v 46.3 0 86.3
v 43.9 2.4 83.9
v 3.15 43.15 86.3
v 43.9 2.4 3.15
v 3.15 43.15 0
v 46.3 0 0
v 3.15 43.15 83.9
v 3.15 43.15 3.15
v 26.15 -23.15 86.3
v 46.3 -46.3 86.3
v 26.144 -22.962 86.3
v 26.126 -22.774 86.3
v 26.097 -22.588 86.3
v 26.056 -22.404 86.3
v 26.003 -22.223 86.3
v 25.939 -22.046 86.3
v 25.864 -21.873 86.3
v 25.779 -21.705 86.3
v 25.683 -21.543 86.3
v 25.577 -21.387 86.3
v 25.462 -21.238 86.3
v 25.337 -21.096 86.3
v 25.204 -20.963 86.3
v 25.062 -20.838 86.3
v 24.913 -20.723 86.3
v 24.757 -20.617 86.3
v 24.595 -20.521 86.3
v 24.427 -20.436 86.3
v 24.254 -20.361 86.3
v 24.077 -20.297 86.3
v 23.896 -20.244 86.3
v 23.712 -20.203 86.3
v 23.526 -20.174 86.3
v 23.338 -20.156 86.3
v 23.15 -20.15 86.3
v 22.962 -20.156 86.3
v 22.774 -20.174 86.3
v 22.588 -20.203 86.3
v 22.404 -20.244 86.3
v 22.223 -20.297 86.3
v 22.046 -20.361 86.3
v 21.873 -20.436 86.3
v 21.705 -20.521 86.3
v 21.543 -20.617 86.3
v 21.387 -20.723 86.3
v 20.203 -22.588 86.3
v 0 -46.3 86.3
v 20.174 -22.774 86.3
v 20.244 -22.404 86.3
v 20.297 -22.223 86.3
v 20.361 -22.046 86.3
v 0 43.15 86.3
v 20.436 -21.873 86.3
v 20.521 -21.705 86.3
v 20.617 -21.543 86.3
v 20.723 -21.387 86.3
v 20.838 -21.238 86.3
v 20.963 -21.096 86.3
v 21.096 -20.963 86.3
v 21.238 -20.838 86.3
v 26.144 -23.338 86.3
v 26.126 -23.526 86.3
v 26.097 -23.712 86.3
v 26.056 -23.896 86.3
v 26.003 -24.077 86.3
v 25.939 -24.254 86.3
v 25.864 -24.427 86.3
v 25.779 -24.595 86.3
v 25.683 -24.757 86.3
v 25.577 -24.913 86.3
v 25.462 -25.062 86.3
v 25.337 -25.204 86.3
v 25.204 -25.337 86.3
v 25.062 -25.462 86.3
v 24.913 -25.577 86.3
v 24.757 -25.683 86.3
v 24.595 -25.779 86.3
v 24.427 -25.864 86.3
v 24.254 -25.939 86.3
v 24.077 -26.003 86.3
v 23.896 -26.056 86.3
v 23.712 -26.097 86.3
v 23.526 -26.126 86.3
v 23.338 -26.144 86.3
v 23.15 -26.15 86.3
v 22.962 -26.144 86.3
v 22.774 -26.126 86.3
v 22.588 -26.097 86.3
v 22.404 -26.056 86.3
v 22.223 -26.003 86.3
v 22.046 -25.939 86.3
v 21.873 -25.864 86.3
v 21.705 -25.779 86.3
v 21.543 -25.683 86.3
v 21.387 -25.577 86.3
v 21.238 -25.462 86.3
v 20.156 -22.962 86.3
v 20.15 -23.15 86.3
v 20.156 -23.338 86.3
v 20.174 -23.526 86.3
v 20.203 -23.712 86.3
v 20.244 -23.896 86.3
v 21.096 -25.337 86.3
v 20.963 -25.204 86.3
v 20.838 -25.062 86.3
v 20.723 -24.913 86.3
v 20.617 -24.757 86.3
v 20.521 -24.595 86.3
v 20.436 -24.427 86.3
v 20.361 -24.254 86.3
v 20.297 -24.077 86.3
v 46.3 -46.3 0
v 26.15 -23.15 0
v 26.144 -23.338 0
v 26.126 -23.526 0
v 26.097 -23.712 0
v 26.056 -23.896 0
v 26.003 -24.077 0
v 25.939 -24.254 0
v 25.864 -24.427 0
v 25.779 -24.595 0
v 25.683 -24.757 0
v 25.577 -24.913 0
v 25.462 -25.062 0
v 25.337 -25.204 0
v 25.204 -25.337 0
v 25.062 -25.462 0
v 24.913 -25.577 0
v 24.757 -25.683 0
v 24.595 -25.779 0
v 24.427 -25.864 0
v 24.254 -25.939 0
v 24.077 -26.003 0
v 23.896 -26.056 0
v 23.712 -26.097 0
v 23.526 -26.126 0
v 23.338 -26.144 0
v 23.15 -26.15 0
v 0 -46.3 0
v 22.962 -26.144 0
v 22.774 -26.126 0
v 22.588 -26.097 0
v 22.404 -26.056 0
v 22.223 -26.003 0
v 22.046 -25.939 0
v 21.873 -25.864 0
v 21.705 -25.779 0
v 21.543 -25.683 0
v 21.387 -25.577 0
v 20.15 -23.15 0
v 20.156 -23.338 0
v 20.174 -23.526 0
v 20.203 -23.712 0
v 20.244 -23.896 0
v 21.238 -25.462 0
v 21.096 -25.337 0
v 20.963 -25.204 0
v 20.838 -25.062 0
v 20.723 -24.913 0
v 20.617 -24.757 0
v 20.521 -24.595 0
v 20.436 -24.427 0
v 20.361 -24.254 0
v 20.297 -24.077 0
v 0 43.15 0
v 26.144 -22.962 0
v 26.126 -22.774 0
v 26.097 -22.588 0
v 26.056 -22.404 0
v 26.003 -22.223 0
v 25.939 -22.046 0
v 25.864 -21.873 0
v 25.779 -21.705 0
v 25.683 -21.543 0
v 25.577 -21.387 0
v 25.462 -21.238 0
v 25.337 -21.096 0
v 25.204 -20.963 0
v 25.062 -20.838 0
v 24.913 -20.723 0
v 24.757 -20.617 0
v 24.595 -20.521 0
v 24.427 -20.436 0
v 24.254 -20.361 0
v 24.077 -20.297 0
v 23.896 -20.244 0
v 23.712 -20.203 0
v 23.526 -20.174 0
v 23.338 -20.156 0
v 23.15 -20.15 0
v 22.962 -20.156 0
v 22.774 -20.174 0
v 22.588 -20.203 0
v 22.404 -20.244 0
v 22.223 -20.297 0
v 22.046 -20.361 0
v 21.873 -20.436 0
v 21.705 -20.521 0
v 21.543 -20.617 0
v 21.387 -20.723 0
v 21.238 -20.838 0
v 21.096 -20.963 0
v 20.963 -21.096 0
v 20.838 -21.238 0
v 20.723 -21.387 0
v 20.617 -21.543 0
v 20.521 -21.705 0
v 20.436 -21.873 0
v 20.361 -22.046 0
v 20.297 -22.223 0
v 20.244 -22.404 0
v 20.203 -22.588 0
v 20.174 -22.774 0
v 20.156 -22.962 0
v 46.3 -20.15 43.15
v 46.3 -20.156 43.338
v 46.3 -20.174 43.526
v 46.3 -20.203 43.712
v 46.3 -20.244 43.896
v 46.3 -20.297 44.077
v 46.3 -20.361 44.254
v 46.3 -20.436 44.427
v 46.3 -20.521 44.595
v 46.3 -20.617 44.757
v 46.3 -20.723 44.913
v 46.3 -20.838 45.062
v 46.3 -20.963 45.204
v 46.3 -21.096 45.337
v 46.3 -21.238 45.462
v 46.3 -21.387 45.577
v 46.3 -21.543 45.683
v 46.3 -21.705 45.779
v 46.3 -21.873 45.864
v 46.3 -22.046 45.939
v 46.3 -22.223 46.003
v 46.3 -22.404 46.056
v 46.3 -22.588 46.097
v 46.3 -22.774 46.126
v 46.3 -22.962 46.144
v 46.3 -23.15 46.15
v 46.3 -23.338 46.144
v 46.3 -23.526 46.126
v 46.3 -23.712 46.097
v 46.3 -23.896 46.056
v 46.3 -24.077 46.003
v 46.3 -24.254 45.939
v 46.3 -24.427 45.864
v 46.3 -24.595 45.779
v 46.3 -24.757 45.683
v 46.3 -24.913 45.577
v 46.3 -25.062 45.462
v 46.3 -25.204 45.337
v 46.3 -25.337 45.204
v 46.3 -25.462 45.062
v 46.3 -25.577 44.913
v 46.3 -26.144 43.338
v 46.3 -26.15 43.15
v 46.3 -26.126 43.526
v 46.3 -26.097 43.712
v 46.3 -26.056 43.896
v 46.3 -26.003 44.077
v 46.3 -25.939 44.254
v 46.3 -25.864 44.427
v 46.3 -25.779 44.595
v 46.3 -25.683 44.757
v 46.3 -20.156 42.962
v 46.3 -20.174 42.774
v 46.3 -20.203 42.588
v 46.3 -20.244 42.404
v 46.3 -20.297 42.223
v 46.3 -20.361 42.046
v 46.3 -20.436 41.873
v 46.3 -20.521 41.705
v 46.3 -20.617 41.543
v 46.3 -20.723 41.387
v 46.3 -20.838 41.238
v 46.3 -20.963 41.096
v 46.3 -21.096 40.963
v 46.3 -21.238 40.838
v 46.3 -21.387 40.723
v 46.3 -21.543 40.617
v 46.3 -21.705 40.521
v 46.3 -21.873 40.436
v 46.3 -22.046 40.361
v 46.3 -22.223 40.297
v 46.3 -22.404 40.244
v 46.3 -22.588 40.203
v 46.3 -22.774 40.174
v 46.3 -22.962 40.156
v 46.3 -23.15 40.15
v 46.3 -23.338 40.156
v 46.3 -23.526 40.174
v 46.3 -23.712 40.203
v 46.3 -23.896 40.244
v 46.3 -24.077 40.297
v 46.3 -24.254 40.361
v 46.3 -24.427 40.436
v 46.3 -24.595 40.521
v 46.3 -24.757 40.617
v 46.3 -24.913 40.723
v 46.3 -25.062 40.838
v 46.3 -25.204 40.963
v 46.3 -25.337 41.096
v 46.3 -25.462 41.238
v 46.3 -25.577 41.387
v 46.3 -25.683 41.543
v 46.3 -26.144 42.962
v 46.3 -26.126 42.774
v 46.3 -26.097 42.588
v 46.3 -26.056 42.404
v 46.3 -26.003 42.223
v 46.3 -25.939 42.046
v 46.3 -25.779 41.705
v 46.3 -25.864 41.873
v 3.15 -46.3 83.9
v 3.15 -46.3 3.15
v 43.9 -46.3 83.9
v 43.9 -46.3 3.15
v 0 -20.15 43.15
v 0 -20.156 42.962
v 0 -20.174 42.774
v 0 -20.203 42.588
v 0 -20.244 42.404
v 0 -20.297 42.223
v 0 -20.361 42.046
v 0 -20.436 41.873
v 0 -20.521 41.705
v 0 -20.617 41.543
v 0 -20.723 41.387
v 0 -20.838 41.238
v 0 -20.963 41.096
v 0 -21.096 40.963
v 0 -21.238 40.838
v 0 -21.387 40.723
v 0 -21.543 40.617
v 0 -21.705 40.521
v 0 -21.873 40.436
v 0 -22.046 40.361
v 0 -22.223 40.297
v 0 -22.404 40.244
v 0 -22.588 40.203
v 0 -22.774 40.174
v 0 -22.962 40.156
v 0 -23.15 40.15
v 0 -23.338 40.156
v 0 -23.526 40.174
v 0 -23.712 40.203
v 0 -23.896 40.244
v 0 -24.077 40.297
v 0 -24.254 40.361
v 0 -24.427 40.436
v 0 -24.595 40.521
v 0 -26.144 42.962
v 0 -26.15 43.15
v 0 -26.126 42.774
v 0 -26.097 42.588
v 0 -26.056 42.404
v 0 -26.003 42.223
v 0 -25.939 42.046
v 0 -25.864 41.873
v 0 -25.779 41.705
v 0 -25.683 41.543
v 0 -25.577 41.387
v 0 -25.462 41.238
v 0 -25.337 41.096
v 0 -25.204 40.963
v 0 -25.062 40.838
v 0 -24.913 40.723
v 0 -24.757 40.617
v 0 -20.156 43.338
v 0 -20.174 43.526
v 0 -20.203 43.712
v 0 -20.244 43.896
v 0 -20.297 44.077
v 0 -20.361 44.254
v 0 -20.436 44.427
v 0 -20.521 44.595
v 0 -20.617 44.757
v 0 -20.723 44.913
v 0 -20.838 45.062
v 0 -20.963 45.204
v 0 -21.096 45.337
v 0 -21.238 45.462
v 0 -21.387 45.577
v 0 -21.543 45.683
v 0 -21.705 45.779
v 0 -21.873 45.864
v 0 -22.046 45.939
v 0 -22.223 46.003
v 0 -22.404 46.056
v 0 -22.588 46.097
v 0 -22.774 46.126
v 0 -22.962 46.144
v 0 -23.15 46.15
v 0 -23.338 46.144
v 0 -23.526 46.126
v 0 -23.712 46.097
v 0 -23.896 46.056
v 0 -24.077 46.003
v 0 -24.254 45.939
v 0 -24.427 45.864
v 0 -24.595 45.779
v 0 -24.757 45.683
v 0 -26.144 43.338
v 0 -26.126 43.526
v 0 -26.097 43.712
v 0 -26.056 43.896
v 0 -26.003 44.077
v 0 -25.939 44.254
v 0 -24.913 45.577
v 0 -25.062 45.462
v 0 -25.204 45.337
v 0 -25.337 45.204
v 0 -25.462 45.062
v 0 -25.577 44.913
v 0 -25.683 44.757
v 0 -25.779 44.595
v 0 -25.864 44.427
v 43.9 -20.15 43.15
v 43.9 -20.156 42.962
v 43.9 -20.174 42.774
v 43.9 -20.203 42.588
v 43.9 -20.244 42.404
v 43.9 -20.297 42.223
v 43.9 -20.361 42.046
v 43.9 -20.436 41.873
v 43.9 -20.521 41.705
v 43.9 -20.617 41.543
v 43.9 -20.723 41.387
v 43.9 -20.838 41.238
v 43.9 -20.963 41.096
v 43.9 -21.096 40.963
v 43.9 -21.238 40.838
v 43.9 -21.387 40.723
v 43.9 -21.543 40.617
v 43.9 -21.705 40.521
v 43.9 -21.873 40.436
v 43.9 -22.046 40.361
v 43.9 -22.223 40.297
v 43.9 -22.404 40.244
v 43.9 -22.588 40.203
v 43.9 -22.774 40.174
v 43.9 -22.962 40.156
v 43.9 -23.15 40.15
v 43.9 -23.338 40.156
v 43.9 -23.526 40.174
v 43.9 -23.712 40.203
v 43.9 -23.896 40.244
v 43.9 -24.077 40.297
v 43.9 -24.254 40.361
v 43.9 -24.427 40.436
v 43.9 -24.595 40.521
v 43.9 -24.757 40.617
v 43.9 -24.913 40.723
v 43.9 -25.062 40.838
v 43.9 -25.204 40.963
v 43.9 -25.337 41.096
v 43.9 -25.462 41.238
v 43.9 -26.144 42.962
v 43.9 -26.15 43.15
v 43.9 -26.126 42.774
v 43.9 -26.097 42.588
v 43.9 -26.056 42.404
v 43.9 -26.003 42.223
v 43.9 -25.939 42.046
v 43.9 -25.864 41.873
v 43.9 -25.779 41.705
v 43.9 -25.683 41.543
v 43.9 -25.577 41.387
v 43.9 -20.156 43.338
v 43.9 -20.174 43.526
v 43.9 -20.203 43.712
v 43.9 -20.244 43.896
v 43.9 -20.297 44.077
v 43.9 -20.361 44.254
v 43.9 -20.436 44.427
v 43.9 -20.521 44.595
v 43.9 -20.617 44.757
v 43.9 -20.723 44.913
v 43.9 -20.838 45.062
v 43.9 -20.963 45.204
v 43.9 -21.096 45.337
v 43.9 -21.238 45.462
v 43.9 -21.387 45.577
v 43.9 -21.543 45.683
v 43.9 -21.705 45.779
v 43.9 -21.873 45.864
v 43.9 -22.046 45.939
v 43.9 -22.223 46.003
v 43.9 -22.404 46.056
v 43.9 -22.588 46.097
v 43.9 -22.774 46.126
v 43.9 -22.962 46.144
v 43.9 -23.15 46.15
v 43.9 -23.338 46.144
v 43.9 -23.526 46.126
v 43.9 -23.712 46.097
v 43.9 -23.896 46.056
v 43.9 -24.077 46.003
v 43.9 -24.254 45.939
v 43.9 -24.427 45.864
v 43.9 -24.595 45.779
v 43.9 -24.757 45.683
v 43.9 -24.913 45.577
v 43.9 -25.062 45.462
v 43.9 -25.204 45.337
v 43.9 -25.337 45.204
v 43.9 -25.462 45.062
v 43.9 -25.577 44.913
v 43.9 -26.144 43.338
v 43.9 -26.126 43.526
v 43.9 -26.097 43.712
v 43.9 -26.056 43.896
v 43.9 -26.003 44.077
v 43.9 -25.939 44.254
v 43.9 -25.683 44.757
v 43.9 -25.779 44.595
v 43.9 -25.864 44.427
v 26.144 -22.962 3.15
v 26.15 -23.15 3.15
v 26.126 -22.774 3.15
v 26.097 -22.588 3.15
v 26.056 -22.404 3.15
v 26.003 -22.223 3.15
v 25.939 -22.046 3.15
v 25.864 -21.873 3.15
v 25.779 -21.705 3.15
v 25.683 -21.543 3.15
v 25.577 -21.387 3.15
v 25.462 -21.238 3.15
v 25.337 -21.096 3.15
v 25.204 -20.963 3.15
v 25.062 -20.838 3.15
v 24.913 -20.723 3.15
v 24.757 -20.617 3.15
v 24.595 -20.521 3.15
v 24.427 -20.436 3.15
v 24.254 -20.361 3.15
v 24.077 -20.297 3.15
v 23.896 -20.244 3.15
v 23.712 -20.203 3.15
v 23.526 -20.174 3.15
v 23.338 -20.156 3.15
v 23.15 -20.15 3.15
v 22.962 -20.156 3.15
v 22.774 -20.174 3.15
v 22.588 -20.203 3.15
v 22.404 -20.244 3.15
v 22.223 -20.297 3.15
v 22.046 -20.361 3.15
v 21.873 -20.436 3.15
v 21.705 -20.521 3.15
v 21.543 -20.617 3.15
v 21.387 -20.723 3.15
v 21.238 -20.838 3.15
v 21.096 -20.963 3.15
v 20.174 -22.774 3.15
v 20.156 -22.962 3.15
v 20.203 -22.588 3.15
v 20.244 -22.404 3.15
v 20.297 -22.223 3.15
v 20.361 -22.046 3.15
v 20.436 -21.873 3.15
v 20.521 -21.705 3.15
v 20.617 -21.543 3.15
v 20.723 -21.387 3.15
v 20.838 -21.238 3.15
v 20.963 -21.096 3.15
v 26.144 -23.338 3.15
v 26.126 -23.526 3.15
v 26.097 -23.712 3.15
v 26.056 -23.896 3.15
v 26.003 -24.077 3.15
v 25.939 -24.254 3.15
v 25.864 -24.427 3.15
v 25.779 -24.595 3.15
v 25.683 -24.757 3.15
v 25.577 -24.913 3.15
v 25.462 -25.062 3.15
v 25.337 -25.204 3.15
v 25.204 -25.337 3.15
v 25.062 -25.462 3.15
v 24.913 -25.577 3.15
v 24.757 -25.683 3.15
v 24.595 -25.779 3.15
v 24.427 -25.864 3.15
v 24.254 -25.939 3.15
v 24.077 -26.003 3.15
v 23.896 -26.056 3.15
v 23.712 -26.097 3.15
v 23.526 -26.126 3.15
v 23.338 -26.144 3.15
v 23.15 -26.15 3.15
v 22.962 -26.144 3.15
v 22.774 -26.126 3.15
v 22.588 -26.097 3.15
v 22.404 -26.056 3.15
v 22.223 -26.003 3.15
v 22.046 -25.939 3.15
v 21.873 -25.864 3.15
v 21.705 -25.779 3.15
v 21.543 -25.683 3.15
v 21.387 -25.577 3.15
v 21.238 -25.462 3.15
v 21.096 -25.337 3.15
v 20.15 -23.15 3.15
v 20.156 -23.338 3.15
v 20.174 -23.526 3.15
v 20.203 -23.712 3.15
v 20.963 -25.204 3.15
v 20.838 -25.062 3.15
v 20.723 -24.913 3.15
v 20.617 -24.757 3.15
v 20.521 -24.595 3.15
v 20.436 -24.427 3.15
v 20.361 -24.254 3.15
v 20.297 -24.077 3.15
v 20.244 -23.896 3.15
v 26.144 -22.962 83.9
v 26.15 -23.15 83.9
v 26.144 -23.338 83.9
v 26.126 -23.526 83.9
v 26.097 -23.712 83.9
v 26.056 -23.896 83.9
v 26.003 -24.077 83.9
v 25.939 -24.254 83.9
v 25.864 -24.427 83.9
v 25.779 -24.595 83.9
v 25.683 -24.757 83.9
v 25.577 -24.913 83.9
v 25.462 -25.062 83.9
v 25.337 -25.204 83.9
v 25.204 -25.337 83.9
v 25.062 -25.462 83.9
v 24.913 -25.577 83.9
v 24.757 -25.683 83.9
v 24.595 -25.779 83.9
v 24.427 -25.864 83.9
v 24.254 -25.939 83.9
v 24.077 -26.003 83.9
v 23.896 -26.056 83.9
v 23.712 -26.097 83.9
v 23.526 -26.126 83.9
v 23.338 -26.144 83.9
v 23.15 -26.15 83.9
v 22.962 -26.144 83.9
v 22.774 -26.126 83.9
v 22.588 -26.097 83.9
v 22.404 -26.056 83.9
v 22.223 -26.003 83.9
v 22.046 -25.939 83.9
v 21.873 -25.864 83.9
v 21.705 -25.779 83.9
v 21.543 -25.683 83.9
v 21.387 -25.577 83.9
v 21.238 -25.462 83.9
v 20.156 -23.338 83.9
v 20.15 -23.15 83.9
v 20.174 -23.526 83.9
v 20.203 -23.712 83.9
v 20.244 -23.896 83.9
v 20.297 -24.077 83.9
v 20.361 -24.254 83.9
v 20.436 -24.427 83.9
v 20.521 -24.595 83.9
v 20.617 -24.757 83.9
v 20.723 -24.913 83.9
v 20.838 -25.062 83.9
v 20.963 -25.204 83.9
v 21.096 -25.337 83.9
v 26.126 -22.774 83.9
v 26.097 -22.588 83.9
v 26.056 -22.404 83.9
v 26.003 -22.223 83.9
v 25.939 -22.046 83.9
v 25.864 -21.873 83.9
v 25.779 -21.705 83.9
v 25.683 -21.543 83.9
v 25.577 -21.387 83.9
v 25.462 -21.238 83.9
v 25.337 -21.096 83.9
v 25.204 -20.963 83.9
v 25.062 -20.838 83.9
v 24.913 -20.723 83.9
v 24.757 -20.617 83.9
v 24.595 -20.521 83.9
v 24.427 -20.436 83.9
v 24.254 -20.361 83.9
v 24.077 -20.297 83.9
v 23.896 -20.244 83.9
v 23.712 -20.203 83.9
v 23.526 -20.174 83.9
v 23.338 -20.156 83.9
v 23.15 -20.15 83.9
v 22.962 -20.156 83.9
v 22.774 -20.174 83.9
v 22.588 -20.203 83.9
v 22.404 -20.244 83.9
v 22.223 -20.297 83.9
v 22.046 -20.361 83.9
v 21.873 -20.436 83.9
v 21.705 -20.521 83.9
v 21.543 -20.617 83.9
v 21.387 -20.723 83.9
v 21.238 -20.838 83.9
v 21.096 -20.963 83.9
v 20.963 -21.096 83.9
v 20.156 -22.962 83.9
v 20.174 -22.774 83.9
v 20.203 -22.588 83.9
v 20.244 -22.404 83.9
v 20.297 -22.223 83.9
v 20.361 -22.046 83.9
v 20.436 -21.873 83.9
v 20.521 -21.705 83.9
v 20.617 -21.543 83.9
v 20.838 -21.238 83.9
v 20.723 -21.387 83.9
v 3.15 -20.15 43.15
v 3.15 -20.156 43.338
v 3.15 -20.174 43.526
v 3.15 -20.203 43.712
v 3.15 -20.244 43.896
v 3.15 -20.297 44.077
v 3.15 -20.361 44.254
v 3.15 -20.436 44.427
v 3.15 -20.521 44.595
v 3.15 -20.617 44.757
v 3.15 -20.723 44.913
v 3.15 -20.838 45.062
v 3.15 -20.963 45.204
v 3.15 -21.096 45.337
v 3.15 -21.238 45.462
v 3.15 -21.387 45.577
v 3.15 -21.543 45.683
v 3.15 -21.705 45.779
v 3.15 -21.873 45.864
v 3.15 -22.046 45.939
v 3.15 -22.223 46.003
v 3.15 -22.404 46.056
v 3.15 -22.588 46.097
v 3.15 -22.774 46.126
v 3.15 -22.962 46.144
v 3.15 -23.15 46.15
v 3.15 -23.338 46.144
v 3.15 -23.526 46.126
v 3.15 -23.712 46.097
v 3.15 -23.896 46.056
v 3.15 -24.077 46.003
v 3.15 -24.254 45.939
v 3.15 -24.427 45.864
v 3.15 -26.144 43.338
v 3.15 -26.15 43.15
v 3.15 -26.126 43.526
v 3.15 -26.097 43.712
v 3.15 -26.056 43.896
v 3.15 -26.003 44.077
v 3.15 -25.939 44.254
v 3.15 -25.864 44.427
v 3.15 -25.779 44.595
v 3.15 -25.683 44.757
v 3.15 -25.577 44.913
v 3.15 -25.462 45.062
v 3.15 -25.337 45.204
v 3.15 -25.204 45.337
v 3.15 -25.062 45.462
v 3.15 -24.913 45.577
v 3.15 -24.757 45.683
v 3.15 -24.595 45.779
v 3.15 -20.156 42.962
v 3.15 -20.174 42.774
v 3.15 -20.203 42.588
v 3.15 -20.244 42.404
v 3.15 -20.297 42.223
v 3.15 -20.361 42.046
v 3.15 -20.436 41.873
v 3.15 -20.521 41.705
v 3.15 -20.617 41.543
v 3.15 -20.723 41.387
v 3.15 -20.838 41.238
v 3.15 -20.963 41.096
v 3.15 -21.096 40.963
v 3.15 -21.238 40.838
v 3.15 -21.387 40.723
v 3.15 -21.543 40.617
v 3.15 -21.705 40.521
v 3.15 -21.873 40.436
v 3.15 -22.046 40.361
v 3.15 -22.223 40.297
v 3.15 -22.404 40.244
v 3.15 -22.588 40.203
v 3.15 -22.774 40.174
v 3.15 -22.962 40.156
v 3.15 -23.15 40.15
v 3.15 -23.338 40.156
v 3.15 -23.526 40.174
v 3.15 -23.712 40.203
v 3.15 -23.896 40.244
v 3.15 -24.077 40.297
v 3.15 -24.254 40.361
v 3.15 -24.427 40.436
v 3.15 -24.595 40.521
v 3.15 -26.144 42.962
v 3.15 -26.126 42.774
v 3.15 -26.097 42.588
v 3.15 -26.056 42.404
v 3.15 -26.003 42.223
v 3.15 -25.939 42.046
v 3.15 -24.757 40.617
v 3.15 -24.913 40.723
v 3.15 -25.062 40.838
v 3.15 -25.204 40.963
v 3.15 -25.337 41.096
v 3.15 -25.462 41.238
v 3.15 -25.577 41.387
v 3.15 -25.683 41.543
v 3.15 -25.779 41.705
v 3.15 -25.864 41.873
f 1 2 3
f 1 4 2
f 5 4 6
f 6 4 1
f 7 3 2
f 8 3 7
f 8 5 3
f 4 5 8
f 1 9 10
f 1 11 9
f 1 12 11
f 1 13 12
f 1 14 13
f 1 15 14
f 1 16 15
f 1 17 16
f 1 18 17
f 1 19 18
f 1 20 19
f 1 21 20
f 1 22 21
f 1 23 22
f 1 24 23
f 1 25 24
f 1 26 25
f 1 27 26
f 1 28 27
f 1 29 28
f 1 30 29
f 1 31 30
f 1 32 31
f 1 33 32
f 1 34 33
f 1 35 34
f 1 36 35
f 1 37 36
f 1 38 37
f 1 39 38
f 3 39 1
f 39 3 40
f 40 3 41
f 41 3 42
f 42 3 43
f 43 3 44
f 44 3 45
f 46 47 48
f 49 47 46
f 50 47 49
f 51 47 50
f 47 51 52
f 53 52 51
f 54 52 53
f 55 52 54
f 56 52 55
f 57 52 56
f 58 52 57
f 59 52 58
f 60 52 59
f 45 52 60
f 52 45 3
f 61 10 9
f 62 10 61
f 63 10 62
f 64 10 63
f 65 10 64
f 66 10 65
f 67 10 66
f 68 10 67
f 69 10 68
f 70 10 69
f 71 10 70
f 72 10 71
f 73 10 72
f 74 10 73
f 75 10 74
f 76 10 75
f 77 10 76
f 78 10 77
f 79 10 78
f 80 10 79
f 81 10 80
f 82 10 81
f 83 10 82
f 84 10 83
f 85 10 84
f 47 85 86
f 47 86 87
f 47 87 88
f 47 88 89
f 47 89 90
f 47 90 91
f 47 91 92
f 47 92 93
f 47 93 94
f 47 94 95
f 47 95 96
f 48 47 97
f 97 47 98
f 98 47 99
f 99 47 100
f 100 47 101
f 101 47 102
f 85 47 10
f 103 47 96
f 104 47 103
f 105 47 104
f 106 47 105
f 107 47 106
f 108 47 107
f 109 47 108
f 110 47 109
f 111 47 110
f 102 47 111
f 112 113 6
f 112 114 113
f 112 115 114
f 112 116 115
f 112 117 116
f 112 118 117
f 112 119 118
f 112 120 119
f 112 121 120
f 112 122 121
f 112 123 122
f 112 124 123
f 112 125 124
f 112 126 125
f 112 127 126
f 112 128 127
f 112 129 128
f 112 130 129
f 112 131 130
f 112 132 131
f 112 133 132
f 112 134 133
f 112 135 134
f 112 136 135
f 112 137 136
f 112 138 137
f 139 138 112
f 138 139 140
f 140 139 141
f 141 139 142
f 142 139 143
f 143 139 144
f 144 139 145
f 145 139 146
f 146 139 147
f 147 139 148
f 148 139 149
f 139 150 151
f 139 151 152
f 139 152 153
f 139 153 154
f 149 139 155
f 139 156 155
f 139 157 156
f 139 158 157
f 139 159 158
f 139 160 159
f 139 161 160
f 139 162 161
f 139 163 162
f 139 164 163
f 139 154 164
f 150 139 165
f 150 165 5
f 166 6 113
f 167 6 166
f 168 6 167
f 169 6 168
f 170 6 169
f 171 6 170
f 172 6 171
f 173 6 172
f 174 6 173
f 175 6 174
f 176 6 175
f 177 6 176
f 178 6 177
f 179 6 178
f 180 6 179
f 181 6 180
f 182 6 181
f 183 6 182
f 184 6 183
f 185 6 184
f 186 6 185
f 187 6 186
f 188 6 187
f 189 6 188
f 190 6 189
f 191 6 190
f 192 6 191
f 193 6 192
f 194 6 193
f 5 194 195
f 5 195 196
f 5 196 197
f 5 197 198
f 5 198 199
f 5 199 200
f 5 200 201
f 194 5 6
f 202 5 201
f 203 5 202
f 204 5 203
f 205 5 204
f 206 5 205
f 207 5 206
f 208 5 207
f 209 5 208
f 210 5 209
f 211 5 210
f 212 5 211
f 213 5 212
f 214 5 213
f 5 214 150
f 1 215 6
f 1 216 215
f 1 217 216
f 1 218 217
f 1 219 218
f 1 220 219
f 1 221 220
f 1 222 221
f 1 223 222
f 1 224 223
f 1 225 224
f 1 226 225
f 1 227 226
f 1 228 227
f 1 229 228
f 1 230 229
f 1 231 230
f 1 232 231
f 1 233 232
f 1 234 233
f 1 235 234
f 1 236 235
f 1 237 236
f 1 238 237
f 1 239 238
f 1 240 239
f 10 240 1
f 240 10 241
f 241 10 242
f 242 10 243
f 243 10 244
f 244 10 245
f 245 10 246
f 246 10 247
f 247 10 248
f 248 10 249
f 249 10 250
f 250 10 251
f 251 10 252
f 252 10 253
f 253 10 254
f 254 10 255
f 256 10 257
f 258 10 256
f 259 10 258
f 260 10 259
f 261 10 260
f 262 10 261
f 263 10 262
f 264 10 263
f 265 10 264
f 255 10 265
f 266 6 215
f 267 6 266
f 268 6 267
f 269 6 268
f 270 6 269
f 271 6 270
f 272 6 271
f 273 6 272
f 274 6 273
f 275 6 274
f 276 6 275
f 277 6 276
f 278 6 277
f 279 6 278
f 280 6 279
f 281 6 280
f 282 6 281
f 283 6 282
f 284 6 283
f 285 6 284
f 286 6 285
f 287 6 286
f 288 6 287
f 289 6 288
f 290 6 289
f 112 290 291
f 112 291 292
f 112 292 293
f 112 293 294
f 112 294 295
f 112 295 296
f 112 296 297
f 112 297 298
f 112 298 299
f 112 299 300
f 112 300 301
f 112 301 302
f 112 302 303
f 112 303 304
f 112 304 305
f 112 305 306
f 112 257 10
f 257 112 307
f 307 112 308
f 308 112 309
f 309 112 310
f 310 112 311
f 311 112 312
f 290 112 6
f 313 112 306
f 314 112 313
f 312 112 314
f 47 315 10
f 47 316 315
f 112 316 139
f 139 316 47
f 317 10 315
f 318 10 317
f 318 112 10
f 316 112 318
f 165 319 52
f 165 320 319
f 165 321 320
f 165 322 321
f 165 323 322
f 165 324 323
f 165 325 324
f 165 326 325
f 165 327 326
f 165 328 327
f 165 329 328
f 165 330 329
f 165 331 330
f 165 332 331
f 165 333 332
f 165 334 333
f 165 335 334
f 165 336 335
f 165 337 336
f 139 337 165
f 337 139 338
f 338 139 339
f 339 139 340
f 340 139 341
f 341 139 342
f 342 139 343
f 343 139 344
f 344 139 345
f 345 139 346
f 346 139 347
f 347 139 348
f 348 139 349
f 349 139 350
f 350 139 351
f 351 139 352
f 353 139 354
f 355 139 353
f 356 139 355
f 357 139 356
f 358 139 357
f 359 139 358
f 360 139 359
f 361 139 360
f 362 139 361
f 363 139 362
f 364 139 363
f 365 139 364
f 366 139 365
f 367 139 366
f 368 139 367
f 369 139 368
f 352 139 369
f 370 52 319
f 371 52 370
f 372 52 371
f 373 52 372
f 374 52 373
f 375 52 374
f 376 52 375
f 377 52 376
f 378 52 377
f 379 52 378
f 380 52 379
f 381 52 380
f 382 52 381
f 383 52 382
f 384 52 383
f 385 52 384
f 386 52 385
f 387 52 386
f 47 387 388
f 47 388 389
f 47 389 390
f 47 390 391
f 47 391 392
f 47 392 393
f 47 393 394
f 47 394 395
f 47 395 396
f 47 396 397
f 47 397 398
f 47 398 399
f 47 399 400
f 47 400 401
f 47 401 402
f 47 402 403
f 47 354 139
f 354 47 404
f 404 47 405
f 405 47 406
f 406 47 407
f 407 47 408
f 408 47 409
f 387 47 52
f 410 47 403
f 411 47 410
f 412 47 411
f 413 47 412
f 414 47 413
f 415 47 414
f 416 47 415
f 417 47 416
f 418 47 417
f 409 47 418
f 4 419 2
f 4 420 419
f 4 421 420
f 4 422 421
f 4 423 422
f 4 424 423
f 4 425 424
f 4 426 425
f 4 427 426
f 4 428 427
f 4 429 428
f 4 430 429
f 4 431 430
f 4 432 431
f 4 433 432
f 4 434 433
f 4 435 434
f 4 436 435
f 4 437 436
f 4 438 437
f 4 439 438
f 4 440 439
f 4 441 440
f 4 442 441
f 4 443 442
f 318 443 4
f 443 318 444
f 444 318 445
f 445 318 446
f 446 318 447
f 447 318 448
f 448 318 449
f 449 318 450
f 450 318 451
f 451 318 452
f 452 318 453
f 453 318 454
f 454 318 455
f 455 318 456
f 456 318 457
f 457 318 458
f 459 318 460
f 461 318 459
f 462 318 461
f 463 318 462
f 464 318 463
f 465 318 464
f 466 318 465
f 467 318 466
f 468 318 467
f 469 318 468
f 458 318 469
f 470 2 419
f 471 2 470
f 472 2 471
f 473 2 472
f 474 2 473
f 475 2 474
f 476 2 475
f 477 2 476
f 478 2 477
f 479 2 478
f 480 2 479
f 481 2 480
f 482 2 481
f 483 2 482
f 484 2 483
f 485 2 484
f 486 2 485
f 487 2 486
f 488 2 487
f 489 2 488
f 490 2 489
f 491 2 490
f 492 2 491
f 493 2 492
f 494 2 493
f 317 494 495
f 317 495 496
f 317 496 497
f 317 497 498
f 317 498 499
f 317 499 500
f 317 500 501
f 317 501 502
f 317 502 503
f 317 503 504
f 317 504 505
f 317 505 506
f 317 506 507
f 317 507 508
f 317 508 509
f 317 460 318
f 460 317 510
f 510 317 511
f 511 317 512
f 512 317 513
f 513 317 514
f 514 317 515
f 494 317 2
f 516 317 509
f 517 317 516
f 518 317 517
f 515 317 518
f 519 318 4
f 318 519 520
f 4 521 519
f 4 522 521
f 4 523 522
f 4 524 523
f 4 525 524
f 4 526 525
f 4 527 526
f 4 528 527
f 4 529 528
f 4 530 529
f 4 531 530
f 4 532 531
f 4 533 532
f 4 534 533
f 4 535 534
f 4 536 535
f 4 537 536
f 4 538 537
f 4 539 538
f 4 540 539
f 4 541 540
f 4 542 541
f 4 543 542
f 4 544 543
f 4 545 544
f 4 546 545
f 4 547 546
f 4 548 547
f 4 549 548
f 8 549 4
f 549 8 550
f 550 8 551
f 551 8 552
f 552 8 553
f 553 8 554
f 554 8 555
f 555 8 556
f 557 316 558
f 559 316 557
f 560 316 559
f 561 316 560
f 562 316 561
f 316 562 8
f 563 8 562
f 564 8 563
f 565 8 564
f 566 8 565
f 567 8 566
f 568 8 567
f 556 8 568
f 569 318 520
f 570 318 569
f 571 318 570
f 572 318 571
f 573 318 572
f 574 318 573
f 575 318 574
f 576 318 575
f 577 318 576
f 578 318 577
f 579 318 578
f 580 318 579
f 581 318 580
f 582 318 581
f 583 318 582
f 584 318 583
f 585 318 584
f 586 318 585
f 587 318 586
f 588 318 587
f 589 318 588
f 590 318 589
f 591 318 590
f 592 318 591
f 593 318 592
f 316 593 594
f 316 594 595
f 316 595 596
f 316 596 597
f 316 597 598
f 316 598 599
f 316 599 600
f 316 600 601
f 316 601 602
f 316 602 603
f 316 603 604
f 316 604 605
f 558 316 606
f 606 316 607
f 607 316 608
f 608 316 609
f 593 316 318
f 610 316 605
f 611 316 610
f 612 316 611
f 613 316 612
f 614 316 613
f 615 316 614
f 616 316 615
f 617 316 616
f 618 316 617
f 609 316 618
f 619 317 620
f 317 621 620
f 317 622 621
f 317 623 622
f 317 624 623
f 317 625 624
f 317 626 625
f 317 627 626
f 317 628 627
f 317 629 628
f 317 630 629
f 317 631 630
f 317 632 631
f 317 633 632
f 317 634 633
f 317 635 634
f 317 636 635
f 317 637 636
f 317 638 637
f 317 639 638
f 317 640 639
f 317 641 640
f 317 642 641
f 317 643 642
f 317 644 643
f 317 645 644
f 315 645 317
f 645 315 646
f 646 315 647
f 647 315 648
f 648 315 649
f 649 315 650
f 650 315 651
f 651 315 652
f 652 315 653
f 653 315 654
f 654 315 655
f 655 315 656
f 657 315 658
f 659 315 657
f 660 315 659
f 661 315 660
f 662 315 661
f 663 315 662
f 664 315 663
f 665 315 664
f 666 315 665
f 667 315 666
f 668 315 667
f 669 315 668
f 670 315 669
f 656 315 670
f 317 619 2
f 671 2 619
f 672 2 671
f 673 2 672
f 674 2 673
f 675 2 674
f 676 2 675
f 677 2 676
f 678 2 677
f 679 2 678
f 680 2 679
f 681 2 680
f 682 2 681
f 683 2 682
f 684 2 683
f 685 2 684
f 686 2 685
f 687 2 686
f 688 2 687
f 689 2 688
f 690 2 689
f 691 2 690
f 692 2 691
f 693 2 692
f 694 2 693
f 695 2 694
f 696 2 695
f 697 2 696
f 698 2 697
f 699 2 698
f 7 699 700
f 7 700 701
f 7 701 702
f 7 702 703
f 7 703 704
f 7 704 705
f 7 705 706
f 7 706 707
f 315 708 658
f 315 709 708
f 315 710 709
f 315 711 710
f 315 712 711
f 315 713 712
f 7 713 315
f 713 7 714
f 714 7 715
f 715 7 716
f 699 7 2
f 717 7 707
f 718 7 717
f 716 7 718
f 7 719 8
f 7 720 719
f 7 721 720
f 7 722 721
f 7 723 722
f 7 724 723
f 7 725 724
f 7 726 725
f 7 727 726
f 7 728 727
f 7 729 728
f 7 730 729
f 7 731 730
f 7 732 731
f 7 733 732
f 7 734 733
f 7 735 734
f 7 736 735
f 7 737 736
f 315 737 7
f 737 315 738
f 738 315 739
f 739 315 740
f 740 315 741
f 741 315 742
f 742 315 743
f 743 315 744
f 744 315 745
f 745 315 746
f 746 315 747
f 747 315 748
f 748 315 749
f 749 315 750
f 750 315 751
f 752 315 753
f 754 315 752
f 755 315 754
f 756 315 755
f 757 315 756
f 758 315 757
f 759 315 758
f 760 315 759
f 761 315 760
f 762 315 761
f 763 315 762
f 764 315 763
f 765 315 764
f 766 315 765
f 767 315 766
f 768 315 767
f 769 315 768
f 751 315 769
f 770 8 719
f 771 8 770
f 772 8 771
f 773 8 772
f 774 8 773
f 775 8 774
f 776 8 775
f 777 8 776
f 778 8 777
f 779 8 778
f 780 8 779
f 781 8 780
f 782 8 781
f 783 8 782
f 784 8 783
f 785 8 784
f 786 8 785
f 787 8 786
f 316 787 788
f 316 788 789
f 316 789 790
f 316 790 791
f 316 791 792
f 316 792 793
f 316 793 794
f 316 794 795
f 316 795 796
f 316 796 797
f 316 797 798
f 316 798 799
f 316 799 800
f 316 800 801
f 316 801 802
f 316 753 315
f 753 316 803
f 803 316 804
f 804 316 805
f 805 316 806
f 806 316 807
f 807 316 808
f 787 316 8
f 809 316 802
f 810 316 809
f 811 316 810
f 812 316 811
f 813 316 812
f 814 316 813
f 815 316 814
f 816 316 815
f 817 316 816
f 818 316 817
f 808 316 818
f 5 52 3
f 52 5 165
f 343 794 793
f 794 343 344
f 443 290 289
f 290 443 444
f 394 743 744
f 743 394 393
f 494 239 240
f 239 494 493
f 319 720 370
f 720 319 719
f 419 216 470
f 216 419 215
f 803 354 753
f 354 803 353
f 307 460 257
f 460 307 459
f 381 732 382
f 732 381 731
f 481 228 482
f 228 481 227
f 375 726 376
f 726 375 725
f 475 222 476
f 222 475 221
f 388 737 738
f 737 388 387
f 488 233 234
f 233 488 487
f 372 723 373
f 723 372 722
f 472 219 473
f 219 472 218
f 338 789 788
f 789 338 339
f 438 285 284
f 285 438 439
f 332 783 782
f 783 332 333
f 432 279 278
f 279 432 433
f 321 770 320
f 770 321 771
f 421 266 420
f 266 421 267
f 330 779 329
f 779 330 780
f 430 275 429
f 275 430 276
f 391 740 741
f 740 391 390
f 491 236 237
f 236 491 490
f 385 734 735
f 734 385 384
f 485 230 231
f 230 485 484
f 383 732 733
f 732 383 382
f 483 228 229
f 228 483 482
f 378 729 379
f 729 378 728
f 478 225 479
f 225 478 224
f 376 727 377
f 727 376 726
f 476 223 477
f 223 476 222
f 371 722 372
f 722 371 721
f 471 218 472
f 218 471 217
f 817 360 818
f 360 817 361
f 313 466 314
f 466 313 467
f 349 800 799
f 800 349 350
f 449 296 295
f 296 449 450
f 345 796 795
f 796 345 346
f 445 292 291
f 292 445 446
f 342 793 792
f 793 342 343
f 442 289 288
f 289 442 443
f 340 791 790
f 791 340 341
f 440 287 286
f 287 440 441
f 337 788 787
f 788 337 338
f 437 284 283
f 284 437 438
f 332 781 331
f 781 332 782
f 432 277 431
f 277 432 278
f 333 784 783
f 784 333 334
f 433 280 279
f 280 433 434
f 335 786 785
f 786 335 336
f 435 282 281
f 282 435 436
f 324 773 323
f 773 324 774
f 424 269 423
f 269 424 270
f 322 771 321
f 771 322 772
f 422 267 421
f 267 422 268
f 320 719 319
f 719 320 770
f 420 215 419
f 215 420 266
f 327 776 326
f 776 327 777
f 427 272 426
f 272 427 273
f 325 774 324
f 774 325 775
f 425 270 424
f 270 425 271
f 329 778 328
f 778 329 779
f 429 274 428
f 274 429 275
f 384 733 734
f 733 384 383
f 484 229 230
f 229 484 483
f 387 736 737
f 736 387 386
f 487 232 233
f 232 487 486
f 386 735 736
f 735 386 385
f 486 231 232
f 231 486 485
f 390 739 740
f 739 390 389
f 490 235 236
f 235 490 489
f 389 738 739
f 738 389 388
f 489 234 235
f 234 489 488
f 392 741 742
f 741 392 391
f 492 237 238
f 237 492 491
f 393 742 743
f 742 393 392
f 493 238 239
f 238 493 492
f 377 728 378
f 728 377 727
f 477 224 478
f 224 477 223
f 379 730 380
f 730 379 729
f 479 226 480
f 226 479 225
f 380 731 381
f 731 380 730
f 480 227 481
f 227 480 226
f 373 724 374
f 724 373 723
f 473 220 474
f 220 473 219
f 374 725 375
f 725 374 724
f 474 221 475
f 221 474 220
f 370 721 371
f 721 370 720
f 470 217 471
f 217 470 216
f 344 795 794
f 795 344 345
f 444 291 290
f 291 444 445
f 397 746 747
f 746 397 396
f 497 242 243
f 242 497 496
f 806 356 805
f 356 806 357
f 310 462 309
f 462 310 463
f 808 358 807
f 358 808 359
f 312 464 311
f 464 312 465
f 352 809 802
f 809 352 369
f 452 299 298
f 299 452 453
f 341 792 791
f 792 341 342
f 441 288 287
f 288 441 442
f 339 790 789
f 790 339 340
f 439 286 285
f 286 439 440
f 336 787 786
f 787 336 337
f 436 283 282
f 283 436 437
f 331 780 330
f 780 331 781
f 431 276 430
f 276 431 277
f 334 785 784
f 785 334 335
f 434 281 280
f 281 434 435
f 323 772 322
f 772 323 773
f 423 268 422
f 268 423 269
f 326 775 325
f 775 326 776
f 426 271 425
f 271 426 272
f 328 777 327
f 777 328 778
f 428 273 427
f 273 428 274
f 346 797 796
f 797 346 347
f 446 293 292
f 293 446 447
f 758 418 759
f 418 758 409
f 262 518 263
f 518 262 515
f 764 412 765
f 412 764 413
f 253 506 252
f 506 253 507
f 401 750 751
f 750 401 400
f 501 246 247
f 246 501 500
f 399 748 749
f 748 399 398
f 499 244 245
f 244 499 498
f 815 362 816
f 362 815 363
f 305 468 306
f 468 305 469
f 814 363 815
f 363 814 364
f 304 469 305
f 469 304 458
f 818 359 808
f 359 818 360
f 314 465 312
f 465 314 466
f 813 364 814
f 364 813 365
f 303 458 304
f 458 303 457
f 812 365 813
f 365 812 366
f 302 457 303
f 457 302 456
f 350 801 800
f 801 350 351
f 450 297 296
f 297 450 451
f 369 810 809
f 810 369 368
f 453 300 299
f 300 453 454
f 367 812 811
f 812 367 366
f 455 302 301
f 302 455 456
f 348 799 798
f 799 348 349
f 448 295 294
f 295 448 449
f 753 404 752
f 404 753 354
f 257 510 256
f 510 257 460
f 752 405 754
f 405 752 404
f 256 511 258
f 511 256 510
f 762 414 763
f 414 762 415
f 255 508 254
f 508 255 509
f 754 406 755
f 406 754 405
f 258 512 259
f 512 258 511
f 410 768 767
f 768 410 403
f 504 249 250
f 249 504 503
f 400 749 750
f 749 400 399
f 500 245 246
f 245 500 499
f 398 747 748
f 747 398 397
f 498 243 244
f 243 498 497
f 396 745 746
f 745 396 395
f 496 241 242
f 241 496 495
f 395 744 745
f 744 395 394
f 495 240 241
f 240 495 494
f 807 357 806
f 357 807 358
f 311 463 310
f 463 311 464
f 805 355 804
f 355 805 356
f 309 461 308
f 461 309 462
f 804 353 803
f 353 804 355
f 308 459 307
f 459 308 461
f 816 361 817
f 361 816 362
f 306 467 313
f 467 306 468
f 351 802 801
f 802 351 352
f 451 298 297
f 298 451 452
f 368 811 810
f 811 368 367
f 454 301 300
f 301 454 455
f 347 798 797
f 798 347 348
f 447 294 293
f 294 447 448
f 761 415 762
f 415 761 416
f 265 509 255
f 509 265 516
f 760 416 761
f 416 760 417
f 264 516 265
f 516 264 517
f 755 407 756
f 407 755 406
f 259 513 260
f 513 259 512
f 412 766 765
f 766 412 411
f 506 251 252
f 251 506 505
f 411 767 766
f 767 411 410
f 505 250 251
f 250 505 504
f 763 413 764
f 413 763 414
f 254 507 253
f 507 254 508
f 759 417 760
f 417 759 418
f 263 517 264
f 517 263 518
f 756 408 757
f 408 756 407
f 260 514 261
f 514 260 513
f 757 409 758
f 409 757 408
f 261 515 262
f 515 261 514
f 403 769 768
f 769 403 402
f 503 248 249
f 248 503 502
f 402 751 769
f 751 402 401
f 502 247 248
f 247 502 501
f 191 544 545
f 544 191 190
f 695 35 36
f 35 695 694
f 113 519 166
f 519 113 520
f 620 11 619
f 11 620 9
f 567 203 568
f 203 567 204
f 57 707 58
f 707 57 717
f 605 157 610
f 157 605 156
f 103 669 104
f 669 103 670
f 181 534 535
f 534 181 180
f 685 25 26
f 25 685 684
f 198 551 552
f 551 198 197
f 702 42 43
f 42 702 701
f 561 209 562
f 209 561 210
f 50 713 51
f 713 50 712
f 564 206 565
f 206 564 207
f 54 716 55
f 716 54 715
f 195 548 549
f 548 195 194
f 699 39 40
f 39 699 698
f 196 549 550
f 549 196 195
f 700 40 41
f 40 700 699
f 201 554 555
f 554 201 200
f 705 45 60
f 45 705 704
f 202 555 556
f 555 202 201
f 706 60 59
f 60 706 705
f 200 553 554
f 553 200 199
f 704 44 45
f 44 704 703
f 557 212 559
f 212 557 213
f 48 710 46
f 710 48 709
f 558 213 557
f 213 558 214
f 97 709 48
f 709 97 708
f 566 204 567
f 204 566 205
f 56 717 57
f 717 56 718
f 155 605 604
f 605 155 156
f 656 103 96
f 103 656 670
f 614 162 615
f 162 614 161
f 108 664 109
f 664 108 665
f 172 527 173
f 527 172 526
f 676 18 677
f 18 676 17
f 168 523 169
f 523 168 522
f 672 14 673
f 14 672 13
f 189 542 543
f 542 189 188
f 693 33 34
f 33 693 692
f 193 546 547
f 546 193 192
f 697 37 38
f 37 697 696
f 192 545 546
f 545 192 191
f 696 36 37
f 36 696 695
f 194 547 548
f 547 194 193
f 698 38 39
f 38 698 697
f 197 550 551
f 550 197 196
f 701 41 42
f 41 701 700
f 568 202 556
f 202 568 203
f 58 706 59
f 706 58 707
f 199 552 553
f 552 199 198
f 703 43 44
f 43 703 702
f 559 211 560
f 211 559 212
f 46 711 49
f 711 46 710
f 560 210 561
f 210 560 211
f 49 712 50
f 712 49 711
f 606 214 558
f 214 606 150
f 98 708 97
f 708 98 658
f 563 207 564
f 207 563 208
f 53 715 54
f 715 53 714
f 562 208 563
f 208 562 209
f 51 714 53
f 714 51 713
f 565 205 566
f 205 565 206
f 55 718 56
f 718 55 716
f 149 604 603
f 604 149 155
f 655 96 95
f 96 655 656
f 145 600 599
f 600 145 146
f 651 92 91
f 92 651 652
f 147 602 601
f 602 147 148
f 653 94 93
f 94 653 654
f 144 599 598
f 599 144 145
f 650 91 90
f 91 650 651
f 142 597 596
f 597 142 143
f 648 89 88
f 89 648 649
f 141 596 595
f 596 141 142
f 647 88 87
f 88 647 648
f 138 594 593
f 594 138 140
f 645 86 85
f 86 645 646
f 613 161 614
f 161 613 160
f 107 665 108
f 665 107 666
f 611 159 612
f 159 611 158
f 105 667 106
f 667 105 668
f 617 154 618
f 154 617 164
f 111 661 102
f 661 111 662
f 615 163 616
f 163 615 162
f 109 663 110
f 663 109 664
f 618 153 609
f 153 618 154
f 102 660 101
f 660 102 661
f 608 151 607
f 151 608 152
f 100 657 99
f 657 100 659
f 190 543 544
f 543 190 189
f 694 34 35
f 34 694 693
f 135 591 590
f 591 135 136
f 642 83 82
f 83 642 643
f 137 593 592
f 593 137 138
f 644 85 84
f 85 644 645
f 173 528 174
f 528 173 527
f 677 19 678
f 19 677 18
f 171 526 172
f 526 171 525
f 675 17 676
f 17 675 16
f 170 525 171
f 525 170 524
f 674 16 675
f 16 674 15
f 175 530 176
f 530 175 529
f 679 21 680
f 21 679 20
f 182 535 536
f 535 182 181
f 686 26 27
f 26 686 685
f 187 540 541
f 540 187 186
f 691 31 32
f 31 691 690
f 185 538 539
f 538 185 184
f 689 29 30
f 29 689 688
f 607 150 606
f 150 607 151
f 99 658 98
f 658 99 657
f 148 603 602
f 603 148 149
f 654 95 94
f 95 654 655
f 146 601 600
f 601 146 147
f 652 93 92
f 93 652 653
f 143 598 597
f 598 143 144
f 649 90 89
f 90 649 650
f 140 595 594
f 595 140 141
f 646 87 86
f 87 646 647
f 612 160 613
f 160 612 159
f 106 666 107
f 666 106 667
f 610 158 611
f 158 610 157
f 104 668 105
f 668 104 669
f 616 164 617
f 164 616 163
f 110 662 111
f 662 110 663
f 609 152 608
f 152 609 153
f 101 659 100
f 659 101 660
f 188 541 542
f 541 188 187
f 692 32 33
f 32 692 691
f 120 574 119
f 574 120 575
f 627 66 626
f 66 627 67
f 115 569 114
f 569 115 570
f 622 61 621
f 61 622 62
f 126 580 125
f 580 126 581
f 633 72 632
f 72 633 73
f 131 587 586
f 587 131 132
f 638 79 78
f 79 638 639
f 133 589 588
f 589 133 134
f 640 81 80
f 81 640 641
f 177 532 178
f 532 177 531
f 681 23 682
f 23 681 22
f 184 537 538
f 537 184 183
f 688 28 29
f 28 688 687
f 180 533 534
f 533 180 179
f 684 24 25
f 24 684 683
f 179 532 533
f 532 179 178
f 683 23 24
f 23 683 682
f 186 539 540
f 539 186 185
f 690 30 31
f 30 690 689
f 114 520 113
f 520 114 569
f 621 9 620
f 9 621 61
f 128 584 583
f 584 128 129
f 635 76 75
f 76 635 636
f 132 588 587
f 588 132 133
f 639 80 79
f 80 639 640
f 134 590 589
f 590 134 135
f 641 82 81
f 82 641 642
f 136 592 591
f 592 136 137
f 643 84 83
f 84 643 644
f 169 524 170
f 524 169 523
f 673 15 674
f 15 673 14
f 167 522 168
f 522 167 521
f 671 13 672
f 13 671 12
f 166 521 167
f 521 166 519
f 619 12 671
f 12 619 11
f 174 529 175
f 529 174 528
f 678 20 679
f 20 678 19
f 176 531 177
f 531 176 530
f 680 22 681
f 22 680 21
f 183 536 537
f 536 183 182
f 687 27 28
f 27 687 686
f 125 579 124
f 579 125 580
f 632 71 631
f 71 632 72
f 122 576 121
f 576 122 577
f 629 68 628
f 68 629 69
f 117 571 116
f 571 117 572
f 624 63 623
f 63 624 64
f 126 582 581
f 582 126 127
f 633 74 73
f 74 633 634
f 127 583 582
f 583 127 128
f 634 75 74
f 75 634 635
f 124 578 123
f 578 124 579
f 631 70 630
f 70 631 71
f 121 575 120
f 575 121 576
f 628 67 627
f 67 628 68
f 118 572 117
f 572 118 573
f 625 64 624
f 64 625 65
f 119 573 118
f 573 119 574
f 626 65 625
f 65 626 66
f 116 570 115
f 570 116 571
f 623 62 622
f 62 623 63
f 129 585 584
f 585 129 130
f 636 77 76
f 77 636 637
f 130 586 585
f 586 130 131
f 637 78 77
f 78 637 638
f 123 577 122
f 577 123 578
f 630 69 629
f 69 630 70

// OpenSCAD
$fn = 100;
width = 80;
height =40;
fit=0.75;
thick = 2.4;
holeDiameter = 6;


w = width + 2*thick + 2*fit;
h = height + 2*thick + 2*fit;
l = fit+thick;

// color("red") translate([0,w/4,w/2]) cube([w/2,w/3,w/2],center=true);
difference(){
    difference(){
    difference(){
//     union(){
//        translate([h-thick,0,0]) cube([thick,thick,w]);
        guide(w,h,h);
//     }    
     translate([l,l,l]) guide(width+fit,height+fit,h*2);
        
    }   
    color("red") translate([-thick/2,h-l,-w/4]) cube([thick*2,thick*2,w*1.5]);
    }
translate([-l,-h/2,w/2]) rotate([0,90,0]) cylinder(d=holeDiameter,h=100);
translate([h/2,-h/2,-l]) rotate([0,0,90]) cylinder(d=holeDiameter,h=100);
}



module guide(w,h,depth){
hull(){
linear_extrude(w) rightTriangle(h,h);
translate([0,-depth,0]) linear_extrude(w) square(h);    
    }   
}

module rightTriangle(w,h){
    polygon([[0,0],[0,w],[h,0]]);    
}
